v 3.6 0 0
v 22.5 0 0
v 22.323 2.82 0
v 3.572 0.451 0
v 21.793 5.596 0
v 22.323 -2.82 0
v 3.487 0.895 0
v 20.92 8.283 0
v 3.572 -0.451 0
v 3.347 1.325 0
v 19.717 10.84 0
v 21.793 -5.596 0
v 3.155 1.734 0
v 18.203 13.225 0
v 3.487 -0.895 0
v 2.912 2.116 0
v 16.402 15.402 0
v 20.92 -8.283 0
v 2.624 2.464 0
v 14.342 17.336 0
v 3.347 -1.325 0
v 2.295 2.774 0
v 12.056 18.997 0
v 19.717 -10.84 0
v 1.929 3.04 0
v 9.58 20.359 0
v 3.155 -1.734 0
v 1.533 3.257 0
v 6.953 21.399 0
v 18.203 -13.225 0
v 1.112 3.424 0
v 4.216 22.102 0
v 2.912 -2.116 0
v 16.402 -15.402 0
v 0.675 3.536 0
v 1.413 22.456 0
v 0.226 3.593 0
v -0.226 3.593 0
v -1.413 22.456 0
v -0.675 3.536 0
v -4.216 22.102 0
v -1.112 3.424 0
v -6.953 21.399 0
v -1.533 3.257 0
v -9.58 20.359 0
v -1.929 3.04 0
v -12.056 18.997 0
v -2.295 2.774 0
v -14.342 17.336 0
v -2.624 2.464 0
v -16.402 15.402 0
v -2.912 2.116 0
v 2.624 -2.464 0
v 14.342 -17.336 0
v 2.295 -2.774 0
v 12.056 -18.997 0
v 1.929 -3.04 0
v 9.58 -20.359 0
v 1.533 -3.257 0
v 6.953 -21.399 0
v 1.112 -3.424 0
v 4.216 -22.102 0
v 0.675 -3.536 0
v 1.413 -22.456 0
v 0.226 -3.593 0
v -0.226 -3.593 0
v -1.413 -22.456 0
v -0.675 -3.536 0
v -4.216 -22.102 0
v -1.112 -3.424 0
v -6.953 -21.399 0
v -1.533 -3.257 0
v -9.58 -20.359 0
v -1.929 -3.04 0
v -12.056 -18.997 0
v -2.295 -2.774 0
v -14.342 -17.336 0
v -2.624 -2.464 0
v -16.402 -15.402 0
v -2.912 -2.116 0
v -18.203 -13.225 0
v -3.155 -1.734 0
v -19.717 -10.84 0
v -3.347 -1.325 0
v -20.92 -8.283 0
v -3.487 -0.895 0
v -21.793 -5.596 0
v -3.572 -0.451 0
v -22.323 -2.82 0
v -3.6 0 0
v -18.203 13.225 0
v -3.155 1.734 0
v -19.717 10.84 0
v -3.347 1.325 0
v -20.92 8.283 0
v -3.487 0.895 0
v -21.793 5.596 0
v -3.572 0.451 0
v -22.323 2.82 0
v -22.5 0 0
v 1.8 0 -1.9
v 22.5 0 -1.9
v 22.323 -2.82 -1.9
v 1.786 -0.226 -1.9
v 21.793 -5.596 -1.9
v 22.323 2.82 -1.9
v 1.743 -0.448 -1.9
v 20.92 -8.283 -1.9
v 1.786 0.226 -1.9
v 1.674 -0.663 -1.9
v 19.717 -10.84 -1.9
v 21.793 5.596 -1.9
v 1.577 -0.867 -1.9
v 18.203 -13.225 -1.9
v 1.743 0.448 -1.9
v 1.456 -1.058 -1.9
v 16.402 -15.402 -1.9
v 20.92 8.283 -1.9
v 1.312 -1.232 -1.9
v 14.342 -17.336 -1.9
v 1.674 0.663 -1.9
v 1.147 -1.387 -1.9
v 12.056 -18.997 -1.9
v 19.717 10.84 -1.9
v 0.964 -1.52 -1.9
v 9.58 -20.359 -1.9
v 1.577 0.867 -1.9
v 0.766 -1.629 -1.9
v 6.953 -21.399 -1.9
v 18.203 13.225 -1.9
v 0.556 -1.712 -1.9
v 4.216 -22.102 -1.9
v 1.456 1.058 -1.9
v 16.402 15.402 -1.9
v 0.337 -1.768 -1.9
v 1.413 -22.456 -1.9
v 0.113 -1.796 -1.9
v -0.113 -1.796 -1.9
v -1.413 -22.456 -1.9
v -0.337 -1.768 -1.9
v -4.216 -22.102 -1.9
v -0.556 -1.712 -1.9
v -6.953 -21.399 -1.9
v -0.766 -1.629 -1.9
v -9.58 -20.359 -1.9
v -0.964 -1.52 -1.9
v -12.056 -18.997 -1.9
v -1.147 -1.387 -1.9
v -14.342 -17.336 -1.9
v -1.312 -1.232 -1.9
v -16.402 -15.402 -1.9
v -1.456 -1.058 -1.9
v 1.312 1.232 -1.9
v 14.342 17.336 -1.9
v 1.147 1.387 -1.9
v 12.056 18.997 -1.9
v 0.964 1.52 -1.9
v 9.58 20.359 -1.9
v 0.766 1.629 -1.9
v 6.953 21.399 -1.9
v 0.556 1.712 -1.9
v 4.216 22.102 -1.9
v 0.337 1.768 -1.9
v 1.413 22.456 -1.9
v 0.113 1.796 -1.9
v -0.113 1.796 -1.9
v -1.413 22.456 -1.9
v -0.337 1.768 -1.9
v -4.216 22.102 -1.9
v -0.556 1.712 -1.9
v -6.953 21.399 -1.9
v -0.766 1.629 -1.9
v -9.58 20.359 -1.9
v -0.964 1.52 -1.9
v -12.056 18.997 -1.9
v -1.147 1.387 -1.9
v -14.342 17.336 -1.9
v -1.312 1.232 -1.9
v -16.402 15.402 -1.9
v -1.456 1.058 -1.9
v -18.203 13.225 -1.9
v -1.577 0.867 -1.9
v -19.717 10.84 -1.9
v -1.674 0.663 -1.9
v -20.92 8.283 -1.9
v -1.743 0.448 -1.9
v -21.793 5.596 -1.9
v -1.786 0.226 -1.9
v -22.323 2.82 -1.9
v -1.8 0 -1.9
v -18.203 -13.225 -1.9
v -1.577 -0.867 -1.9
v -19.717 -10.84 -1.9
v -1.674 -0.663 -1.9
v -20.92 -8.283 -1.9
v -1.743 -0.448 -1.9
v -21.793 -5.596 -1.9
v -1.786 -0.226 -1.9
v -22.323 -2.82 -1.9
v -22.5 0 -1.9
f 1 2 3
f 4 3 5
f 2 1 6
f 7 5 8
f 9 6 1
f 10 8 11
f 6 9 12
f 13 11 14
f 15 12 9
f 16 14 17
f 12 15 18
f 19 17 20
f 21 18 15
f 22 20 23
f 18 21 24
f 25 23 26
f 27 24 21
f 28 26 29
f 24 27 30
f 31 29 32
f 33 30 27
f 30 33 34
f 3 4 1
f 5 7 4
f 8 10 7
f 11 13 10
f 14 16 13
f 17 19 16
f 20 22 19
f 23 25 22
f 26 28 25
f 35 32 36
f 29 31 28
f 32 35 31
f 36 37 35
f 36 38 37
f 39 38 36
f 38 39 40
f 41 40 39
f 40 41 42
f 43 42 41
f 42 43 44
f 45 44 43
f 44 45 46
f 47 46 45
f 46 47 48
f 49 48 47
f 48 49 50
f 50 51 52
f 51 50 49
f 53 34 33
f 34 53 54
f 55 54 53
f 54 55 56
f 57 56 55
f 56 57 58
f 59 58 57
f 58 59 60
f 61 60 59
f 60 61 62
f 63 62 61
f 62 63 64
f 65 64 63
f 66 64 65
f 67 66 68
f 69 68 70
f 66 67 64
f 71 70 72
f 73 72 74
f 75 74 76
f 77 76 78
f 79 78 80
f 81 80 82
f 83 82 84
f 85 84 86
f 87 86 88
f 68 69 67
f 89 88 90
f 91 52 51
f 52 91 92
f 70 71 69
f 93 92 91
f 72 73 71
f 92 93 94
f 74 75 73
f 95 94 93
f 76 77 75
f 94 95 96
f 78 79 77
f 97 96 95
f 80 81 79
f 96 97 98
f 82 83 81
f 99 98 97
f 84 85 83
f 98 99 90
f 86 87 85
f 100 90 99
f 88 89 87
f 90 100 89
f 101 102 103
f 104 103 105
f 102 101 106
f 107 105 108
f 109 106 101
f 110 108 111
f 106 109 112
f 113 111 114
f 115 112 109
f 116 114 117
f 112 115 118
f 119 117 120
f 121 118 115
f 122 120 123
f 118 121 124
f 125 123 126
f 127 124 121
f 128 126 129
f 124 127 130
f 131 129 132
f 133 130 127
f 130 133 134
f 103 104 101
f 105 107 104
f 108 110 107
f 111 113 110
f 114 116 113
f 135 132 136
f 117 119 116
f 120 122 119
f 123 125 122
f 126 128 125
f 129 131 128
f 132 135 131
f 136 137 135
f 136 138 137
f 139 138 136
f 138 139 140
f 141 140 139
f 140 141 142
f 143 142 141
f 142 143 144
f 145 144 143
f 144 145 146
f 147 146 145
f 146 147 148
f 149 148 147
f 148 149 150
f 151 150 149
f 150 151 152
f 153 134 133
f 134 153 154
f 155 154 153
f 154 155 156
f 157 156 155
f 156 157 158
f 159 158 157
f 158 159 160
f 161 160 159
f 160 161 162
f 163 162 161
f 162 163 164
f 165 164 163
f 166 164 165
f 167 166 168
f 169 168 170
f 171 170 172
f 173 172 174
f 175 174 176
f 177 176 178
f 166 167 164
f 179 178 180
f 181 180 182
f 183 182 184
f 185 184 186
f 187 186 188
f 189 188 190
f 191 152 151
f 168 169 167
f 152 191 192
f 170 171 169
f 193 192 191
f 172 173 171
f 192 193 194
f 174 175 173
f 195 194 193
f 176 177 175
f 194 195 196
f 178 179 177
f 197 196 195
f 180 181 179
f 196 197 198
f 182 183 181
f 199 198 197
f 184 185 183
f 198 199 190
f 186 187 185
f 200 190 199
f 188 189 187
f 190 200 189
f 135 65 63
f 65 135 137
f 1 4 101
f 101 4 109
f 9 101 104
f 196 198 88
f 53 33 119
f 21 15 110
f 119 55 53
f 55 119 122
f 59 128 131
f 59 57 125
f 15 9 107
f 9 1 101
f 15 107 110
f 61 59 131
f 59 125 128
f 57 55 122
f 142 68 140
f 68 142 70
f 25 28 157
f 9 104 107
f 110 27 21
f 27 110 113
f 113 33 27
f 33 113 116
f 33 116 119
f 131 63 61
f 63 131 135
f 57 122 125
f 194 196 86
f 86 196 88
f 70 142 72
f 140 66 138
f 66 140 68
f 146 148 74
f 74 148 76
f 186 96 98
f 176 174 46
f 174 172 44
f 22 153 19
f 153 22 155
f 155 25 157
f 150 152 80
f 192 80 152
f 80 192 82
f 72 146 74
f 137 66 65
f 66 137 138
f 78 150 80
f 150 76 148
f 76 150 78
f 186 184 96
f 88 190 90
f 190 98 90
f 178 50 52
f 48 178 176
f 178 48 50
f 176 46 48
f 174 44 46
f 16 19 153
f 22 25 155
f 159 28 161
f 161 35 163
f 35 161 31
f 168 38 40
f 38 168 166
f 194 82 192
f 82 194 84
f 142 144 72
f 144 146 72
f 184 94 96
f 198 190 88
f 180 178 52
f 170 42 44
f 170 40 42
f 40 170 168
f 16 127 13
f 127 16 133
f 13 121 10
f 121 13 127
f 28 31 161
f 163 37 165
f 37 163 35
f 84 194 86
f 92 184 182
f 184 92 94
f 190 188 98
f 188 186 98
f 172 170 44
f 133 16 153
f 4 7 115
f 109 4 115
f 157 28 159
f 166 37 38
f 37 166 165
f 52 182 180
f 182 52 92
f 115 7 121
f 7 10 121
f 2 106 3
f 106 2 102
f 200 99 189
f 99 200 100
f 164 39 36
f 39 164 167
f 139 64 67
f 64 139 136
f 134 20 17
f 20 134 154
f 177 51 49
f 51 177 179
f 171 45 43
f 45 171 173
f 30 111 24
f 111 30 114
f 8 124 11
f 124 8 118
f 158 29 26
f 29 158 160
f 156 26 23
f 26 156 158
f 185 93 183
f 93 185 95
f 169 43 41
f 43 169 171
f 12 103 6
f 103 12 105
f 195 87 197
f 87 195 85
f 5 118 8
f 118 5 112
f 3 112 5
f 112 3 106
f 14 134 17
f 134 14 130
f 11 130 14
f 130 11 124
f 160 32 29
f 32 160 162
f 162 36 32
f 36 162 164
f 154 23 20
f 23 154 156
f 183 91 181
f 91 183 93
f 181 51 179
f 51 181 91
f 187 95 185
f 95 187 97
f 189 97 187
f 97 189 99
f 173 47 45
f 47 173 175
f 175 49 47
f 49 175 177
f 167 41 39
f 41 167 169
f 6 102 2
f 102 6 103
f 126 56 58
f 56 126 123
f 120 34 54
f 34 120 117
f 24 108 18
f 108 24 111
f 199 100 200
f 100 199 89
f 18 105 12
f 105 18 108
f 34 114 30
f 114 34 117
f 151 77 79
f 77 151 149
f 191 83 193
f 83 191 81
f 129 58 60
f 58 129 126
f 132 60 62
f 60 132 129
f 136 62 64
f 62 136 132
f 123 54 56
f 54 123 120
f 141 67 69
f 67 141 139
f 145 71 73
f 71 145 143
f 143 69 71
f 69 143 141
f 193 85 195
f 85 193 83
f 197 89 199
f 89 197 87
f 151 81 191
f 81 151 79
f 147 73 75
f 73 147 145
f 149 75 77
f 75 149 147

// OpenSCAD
$fn = 50;


difference() {
	union() {
		translate(v = [0, 0, -1.9000000000]) {
			cylinder(h = 1.9000000000, r = 22.5000000000);
		}
	}
	union() {
		translate(v = [0, 0, 0]) {
			rotate(a = [0, 0, 0]) {
				difference() {
					union() {
						translate(v = [0, 0, -1.9000000000]) {
							cylinder(h = 1.9000000000, r = 1.5000000000);
						}
						translate(v = [0, 0, -1.9000000000]) {
							cylinder(h = 1.9000000000, r1 = 1.8000000000, r2 = 3.6000000000);
						}
						translate(v = [0, 0, -1.9000000000]) {
							cylinder(h = 1.9000000000, r = 1.8000000000);
						}
						translate(v = [0, 0, -1.9000000000]) {
							cylinder(h = 1.9000000000, r = 1.5000000000);
						}
					}
					union();
				}
			}
		}
	}
}
